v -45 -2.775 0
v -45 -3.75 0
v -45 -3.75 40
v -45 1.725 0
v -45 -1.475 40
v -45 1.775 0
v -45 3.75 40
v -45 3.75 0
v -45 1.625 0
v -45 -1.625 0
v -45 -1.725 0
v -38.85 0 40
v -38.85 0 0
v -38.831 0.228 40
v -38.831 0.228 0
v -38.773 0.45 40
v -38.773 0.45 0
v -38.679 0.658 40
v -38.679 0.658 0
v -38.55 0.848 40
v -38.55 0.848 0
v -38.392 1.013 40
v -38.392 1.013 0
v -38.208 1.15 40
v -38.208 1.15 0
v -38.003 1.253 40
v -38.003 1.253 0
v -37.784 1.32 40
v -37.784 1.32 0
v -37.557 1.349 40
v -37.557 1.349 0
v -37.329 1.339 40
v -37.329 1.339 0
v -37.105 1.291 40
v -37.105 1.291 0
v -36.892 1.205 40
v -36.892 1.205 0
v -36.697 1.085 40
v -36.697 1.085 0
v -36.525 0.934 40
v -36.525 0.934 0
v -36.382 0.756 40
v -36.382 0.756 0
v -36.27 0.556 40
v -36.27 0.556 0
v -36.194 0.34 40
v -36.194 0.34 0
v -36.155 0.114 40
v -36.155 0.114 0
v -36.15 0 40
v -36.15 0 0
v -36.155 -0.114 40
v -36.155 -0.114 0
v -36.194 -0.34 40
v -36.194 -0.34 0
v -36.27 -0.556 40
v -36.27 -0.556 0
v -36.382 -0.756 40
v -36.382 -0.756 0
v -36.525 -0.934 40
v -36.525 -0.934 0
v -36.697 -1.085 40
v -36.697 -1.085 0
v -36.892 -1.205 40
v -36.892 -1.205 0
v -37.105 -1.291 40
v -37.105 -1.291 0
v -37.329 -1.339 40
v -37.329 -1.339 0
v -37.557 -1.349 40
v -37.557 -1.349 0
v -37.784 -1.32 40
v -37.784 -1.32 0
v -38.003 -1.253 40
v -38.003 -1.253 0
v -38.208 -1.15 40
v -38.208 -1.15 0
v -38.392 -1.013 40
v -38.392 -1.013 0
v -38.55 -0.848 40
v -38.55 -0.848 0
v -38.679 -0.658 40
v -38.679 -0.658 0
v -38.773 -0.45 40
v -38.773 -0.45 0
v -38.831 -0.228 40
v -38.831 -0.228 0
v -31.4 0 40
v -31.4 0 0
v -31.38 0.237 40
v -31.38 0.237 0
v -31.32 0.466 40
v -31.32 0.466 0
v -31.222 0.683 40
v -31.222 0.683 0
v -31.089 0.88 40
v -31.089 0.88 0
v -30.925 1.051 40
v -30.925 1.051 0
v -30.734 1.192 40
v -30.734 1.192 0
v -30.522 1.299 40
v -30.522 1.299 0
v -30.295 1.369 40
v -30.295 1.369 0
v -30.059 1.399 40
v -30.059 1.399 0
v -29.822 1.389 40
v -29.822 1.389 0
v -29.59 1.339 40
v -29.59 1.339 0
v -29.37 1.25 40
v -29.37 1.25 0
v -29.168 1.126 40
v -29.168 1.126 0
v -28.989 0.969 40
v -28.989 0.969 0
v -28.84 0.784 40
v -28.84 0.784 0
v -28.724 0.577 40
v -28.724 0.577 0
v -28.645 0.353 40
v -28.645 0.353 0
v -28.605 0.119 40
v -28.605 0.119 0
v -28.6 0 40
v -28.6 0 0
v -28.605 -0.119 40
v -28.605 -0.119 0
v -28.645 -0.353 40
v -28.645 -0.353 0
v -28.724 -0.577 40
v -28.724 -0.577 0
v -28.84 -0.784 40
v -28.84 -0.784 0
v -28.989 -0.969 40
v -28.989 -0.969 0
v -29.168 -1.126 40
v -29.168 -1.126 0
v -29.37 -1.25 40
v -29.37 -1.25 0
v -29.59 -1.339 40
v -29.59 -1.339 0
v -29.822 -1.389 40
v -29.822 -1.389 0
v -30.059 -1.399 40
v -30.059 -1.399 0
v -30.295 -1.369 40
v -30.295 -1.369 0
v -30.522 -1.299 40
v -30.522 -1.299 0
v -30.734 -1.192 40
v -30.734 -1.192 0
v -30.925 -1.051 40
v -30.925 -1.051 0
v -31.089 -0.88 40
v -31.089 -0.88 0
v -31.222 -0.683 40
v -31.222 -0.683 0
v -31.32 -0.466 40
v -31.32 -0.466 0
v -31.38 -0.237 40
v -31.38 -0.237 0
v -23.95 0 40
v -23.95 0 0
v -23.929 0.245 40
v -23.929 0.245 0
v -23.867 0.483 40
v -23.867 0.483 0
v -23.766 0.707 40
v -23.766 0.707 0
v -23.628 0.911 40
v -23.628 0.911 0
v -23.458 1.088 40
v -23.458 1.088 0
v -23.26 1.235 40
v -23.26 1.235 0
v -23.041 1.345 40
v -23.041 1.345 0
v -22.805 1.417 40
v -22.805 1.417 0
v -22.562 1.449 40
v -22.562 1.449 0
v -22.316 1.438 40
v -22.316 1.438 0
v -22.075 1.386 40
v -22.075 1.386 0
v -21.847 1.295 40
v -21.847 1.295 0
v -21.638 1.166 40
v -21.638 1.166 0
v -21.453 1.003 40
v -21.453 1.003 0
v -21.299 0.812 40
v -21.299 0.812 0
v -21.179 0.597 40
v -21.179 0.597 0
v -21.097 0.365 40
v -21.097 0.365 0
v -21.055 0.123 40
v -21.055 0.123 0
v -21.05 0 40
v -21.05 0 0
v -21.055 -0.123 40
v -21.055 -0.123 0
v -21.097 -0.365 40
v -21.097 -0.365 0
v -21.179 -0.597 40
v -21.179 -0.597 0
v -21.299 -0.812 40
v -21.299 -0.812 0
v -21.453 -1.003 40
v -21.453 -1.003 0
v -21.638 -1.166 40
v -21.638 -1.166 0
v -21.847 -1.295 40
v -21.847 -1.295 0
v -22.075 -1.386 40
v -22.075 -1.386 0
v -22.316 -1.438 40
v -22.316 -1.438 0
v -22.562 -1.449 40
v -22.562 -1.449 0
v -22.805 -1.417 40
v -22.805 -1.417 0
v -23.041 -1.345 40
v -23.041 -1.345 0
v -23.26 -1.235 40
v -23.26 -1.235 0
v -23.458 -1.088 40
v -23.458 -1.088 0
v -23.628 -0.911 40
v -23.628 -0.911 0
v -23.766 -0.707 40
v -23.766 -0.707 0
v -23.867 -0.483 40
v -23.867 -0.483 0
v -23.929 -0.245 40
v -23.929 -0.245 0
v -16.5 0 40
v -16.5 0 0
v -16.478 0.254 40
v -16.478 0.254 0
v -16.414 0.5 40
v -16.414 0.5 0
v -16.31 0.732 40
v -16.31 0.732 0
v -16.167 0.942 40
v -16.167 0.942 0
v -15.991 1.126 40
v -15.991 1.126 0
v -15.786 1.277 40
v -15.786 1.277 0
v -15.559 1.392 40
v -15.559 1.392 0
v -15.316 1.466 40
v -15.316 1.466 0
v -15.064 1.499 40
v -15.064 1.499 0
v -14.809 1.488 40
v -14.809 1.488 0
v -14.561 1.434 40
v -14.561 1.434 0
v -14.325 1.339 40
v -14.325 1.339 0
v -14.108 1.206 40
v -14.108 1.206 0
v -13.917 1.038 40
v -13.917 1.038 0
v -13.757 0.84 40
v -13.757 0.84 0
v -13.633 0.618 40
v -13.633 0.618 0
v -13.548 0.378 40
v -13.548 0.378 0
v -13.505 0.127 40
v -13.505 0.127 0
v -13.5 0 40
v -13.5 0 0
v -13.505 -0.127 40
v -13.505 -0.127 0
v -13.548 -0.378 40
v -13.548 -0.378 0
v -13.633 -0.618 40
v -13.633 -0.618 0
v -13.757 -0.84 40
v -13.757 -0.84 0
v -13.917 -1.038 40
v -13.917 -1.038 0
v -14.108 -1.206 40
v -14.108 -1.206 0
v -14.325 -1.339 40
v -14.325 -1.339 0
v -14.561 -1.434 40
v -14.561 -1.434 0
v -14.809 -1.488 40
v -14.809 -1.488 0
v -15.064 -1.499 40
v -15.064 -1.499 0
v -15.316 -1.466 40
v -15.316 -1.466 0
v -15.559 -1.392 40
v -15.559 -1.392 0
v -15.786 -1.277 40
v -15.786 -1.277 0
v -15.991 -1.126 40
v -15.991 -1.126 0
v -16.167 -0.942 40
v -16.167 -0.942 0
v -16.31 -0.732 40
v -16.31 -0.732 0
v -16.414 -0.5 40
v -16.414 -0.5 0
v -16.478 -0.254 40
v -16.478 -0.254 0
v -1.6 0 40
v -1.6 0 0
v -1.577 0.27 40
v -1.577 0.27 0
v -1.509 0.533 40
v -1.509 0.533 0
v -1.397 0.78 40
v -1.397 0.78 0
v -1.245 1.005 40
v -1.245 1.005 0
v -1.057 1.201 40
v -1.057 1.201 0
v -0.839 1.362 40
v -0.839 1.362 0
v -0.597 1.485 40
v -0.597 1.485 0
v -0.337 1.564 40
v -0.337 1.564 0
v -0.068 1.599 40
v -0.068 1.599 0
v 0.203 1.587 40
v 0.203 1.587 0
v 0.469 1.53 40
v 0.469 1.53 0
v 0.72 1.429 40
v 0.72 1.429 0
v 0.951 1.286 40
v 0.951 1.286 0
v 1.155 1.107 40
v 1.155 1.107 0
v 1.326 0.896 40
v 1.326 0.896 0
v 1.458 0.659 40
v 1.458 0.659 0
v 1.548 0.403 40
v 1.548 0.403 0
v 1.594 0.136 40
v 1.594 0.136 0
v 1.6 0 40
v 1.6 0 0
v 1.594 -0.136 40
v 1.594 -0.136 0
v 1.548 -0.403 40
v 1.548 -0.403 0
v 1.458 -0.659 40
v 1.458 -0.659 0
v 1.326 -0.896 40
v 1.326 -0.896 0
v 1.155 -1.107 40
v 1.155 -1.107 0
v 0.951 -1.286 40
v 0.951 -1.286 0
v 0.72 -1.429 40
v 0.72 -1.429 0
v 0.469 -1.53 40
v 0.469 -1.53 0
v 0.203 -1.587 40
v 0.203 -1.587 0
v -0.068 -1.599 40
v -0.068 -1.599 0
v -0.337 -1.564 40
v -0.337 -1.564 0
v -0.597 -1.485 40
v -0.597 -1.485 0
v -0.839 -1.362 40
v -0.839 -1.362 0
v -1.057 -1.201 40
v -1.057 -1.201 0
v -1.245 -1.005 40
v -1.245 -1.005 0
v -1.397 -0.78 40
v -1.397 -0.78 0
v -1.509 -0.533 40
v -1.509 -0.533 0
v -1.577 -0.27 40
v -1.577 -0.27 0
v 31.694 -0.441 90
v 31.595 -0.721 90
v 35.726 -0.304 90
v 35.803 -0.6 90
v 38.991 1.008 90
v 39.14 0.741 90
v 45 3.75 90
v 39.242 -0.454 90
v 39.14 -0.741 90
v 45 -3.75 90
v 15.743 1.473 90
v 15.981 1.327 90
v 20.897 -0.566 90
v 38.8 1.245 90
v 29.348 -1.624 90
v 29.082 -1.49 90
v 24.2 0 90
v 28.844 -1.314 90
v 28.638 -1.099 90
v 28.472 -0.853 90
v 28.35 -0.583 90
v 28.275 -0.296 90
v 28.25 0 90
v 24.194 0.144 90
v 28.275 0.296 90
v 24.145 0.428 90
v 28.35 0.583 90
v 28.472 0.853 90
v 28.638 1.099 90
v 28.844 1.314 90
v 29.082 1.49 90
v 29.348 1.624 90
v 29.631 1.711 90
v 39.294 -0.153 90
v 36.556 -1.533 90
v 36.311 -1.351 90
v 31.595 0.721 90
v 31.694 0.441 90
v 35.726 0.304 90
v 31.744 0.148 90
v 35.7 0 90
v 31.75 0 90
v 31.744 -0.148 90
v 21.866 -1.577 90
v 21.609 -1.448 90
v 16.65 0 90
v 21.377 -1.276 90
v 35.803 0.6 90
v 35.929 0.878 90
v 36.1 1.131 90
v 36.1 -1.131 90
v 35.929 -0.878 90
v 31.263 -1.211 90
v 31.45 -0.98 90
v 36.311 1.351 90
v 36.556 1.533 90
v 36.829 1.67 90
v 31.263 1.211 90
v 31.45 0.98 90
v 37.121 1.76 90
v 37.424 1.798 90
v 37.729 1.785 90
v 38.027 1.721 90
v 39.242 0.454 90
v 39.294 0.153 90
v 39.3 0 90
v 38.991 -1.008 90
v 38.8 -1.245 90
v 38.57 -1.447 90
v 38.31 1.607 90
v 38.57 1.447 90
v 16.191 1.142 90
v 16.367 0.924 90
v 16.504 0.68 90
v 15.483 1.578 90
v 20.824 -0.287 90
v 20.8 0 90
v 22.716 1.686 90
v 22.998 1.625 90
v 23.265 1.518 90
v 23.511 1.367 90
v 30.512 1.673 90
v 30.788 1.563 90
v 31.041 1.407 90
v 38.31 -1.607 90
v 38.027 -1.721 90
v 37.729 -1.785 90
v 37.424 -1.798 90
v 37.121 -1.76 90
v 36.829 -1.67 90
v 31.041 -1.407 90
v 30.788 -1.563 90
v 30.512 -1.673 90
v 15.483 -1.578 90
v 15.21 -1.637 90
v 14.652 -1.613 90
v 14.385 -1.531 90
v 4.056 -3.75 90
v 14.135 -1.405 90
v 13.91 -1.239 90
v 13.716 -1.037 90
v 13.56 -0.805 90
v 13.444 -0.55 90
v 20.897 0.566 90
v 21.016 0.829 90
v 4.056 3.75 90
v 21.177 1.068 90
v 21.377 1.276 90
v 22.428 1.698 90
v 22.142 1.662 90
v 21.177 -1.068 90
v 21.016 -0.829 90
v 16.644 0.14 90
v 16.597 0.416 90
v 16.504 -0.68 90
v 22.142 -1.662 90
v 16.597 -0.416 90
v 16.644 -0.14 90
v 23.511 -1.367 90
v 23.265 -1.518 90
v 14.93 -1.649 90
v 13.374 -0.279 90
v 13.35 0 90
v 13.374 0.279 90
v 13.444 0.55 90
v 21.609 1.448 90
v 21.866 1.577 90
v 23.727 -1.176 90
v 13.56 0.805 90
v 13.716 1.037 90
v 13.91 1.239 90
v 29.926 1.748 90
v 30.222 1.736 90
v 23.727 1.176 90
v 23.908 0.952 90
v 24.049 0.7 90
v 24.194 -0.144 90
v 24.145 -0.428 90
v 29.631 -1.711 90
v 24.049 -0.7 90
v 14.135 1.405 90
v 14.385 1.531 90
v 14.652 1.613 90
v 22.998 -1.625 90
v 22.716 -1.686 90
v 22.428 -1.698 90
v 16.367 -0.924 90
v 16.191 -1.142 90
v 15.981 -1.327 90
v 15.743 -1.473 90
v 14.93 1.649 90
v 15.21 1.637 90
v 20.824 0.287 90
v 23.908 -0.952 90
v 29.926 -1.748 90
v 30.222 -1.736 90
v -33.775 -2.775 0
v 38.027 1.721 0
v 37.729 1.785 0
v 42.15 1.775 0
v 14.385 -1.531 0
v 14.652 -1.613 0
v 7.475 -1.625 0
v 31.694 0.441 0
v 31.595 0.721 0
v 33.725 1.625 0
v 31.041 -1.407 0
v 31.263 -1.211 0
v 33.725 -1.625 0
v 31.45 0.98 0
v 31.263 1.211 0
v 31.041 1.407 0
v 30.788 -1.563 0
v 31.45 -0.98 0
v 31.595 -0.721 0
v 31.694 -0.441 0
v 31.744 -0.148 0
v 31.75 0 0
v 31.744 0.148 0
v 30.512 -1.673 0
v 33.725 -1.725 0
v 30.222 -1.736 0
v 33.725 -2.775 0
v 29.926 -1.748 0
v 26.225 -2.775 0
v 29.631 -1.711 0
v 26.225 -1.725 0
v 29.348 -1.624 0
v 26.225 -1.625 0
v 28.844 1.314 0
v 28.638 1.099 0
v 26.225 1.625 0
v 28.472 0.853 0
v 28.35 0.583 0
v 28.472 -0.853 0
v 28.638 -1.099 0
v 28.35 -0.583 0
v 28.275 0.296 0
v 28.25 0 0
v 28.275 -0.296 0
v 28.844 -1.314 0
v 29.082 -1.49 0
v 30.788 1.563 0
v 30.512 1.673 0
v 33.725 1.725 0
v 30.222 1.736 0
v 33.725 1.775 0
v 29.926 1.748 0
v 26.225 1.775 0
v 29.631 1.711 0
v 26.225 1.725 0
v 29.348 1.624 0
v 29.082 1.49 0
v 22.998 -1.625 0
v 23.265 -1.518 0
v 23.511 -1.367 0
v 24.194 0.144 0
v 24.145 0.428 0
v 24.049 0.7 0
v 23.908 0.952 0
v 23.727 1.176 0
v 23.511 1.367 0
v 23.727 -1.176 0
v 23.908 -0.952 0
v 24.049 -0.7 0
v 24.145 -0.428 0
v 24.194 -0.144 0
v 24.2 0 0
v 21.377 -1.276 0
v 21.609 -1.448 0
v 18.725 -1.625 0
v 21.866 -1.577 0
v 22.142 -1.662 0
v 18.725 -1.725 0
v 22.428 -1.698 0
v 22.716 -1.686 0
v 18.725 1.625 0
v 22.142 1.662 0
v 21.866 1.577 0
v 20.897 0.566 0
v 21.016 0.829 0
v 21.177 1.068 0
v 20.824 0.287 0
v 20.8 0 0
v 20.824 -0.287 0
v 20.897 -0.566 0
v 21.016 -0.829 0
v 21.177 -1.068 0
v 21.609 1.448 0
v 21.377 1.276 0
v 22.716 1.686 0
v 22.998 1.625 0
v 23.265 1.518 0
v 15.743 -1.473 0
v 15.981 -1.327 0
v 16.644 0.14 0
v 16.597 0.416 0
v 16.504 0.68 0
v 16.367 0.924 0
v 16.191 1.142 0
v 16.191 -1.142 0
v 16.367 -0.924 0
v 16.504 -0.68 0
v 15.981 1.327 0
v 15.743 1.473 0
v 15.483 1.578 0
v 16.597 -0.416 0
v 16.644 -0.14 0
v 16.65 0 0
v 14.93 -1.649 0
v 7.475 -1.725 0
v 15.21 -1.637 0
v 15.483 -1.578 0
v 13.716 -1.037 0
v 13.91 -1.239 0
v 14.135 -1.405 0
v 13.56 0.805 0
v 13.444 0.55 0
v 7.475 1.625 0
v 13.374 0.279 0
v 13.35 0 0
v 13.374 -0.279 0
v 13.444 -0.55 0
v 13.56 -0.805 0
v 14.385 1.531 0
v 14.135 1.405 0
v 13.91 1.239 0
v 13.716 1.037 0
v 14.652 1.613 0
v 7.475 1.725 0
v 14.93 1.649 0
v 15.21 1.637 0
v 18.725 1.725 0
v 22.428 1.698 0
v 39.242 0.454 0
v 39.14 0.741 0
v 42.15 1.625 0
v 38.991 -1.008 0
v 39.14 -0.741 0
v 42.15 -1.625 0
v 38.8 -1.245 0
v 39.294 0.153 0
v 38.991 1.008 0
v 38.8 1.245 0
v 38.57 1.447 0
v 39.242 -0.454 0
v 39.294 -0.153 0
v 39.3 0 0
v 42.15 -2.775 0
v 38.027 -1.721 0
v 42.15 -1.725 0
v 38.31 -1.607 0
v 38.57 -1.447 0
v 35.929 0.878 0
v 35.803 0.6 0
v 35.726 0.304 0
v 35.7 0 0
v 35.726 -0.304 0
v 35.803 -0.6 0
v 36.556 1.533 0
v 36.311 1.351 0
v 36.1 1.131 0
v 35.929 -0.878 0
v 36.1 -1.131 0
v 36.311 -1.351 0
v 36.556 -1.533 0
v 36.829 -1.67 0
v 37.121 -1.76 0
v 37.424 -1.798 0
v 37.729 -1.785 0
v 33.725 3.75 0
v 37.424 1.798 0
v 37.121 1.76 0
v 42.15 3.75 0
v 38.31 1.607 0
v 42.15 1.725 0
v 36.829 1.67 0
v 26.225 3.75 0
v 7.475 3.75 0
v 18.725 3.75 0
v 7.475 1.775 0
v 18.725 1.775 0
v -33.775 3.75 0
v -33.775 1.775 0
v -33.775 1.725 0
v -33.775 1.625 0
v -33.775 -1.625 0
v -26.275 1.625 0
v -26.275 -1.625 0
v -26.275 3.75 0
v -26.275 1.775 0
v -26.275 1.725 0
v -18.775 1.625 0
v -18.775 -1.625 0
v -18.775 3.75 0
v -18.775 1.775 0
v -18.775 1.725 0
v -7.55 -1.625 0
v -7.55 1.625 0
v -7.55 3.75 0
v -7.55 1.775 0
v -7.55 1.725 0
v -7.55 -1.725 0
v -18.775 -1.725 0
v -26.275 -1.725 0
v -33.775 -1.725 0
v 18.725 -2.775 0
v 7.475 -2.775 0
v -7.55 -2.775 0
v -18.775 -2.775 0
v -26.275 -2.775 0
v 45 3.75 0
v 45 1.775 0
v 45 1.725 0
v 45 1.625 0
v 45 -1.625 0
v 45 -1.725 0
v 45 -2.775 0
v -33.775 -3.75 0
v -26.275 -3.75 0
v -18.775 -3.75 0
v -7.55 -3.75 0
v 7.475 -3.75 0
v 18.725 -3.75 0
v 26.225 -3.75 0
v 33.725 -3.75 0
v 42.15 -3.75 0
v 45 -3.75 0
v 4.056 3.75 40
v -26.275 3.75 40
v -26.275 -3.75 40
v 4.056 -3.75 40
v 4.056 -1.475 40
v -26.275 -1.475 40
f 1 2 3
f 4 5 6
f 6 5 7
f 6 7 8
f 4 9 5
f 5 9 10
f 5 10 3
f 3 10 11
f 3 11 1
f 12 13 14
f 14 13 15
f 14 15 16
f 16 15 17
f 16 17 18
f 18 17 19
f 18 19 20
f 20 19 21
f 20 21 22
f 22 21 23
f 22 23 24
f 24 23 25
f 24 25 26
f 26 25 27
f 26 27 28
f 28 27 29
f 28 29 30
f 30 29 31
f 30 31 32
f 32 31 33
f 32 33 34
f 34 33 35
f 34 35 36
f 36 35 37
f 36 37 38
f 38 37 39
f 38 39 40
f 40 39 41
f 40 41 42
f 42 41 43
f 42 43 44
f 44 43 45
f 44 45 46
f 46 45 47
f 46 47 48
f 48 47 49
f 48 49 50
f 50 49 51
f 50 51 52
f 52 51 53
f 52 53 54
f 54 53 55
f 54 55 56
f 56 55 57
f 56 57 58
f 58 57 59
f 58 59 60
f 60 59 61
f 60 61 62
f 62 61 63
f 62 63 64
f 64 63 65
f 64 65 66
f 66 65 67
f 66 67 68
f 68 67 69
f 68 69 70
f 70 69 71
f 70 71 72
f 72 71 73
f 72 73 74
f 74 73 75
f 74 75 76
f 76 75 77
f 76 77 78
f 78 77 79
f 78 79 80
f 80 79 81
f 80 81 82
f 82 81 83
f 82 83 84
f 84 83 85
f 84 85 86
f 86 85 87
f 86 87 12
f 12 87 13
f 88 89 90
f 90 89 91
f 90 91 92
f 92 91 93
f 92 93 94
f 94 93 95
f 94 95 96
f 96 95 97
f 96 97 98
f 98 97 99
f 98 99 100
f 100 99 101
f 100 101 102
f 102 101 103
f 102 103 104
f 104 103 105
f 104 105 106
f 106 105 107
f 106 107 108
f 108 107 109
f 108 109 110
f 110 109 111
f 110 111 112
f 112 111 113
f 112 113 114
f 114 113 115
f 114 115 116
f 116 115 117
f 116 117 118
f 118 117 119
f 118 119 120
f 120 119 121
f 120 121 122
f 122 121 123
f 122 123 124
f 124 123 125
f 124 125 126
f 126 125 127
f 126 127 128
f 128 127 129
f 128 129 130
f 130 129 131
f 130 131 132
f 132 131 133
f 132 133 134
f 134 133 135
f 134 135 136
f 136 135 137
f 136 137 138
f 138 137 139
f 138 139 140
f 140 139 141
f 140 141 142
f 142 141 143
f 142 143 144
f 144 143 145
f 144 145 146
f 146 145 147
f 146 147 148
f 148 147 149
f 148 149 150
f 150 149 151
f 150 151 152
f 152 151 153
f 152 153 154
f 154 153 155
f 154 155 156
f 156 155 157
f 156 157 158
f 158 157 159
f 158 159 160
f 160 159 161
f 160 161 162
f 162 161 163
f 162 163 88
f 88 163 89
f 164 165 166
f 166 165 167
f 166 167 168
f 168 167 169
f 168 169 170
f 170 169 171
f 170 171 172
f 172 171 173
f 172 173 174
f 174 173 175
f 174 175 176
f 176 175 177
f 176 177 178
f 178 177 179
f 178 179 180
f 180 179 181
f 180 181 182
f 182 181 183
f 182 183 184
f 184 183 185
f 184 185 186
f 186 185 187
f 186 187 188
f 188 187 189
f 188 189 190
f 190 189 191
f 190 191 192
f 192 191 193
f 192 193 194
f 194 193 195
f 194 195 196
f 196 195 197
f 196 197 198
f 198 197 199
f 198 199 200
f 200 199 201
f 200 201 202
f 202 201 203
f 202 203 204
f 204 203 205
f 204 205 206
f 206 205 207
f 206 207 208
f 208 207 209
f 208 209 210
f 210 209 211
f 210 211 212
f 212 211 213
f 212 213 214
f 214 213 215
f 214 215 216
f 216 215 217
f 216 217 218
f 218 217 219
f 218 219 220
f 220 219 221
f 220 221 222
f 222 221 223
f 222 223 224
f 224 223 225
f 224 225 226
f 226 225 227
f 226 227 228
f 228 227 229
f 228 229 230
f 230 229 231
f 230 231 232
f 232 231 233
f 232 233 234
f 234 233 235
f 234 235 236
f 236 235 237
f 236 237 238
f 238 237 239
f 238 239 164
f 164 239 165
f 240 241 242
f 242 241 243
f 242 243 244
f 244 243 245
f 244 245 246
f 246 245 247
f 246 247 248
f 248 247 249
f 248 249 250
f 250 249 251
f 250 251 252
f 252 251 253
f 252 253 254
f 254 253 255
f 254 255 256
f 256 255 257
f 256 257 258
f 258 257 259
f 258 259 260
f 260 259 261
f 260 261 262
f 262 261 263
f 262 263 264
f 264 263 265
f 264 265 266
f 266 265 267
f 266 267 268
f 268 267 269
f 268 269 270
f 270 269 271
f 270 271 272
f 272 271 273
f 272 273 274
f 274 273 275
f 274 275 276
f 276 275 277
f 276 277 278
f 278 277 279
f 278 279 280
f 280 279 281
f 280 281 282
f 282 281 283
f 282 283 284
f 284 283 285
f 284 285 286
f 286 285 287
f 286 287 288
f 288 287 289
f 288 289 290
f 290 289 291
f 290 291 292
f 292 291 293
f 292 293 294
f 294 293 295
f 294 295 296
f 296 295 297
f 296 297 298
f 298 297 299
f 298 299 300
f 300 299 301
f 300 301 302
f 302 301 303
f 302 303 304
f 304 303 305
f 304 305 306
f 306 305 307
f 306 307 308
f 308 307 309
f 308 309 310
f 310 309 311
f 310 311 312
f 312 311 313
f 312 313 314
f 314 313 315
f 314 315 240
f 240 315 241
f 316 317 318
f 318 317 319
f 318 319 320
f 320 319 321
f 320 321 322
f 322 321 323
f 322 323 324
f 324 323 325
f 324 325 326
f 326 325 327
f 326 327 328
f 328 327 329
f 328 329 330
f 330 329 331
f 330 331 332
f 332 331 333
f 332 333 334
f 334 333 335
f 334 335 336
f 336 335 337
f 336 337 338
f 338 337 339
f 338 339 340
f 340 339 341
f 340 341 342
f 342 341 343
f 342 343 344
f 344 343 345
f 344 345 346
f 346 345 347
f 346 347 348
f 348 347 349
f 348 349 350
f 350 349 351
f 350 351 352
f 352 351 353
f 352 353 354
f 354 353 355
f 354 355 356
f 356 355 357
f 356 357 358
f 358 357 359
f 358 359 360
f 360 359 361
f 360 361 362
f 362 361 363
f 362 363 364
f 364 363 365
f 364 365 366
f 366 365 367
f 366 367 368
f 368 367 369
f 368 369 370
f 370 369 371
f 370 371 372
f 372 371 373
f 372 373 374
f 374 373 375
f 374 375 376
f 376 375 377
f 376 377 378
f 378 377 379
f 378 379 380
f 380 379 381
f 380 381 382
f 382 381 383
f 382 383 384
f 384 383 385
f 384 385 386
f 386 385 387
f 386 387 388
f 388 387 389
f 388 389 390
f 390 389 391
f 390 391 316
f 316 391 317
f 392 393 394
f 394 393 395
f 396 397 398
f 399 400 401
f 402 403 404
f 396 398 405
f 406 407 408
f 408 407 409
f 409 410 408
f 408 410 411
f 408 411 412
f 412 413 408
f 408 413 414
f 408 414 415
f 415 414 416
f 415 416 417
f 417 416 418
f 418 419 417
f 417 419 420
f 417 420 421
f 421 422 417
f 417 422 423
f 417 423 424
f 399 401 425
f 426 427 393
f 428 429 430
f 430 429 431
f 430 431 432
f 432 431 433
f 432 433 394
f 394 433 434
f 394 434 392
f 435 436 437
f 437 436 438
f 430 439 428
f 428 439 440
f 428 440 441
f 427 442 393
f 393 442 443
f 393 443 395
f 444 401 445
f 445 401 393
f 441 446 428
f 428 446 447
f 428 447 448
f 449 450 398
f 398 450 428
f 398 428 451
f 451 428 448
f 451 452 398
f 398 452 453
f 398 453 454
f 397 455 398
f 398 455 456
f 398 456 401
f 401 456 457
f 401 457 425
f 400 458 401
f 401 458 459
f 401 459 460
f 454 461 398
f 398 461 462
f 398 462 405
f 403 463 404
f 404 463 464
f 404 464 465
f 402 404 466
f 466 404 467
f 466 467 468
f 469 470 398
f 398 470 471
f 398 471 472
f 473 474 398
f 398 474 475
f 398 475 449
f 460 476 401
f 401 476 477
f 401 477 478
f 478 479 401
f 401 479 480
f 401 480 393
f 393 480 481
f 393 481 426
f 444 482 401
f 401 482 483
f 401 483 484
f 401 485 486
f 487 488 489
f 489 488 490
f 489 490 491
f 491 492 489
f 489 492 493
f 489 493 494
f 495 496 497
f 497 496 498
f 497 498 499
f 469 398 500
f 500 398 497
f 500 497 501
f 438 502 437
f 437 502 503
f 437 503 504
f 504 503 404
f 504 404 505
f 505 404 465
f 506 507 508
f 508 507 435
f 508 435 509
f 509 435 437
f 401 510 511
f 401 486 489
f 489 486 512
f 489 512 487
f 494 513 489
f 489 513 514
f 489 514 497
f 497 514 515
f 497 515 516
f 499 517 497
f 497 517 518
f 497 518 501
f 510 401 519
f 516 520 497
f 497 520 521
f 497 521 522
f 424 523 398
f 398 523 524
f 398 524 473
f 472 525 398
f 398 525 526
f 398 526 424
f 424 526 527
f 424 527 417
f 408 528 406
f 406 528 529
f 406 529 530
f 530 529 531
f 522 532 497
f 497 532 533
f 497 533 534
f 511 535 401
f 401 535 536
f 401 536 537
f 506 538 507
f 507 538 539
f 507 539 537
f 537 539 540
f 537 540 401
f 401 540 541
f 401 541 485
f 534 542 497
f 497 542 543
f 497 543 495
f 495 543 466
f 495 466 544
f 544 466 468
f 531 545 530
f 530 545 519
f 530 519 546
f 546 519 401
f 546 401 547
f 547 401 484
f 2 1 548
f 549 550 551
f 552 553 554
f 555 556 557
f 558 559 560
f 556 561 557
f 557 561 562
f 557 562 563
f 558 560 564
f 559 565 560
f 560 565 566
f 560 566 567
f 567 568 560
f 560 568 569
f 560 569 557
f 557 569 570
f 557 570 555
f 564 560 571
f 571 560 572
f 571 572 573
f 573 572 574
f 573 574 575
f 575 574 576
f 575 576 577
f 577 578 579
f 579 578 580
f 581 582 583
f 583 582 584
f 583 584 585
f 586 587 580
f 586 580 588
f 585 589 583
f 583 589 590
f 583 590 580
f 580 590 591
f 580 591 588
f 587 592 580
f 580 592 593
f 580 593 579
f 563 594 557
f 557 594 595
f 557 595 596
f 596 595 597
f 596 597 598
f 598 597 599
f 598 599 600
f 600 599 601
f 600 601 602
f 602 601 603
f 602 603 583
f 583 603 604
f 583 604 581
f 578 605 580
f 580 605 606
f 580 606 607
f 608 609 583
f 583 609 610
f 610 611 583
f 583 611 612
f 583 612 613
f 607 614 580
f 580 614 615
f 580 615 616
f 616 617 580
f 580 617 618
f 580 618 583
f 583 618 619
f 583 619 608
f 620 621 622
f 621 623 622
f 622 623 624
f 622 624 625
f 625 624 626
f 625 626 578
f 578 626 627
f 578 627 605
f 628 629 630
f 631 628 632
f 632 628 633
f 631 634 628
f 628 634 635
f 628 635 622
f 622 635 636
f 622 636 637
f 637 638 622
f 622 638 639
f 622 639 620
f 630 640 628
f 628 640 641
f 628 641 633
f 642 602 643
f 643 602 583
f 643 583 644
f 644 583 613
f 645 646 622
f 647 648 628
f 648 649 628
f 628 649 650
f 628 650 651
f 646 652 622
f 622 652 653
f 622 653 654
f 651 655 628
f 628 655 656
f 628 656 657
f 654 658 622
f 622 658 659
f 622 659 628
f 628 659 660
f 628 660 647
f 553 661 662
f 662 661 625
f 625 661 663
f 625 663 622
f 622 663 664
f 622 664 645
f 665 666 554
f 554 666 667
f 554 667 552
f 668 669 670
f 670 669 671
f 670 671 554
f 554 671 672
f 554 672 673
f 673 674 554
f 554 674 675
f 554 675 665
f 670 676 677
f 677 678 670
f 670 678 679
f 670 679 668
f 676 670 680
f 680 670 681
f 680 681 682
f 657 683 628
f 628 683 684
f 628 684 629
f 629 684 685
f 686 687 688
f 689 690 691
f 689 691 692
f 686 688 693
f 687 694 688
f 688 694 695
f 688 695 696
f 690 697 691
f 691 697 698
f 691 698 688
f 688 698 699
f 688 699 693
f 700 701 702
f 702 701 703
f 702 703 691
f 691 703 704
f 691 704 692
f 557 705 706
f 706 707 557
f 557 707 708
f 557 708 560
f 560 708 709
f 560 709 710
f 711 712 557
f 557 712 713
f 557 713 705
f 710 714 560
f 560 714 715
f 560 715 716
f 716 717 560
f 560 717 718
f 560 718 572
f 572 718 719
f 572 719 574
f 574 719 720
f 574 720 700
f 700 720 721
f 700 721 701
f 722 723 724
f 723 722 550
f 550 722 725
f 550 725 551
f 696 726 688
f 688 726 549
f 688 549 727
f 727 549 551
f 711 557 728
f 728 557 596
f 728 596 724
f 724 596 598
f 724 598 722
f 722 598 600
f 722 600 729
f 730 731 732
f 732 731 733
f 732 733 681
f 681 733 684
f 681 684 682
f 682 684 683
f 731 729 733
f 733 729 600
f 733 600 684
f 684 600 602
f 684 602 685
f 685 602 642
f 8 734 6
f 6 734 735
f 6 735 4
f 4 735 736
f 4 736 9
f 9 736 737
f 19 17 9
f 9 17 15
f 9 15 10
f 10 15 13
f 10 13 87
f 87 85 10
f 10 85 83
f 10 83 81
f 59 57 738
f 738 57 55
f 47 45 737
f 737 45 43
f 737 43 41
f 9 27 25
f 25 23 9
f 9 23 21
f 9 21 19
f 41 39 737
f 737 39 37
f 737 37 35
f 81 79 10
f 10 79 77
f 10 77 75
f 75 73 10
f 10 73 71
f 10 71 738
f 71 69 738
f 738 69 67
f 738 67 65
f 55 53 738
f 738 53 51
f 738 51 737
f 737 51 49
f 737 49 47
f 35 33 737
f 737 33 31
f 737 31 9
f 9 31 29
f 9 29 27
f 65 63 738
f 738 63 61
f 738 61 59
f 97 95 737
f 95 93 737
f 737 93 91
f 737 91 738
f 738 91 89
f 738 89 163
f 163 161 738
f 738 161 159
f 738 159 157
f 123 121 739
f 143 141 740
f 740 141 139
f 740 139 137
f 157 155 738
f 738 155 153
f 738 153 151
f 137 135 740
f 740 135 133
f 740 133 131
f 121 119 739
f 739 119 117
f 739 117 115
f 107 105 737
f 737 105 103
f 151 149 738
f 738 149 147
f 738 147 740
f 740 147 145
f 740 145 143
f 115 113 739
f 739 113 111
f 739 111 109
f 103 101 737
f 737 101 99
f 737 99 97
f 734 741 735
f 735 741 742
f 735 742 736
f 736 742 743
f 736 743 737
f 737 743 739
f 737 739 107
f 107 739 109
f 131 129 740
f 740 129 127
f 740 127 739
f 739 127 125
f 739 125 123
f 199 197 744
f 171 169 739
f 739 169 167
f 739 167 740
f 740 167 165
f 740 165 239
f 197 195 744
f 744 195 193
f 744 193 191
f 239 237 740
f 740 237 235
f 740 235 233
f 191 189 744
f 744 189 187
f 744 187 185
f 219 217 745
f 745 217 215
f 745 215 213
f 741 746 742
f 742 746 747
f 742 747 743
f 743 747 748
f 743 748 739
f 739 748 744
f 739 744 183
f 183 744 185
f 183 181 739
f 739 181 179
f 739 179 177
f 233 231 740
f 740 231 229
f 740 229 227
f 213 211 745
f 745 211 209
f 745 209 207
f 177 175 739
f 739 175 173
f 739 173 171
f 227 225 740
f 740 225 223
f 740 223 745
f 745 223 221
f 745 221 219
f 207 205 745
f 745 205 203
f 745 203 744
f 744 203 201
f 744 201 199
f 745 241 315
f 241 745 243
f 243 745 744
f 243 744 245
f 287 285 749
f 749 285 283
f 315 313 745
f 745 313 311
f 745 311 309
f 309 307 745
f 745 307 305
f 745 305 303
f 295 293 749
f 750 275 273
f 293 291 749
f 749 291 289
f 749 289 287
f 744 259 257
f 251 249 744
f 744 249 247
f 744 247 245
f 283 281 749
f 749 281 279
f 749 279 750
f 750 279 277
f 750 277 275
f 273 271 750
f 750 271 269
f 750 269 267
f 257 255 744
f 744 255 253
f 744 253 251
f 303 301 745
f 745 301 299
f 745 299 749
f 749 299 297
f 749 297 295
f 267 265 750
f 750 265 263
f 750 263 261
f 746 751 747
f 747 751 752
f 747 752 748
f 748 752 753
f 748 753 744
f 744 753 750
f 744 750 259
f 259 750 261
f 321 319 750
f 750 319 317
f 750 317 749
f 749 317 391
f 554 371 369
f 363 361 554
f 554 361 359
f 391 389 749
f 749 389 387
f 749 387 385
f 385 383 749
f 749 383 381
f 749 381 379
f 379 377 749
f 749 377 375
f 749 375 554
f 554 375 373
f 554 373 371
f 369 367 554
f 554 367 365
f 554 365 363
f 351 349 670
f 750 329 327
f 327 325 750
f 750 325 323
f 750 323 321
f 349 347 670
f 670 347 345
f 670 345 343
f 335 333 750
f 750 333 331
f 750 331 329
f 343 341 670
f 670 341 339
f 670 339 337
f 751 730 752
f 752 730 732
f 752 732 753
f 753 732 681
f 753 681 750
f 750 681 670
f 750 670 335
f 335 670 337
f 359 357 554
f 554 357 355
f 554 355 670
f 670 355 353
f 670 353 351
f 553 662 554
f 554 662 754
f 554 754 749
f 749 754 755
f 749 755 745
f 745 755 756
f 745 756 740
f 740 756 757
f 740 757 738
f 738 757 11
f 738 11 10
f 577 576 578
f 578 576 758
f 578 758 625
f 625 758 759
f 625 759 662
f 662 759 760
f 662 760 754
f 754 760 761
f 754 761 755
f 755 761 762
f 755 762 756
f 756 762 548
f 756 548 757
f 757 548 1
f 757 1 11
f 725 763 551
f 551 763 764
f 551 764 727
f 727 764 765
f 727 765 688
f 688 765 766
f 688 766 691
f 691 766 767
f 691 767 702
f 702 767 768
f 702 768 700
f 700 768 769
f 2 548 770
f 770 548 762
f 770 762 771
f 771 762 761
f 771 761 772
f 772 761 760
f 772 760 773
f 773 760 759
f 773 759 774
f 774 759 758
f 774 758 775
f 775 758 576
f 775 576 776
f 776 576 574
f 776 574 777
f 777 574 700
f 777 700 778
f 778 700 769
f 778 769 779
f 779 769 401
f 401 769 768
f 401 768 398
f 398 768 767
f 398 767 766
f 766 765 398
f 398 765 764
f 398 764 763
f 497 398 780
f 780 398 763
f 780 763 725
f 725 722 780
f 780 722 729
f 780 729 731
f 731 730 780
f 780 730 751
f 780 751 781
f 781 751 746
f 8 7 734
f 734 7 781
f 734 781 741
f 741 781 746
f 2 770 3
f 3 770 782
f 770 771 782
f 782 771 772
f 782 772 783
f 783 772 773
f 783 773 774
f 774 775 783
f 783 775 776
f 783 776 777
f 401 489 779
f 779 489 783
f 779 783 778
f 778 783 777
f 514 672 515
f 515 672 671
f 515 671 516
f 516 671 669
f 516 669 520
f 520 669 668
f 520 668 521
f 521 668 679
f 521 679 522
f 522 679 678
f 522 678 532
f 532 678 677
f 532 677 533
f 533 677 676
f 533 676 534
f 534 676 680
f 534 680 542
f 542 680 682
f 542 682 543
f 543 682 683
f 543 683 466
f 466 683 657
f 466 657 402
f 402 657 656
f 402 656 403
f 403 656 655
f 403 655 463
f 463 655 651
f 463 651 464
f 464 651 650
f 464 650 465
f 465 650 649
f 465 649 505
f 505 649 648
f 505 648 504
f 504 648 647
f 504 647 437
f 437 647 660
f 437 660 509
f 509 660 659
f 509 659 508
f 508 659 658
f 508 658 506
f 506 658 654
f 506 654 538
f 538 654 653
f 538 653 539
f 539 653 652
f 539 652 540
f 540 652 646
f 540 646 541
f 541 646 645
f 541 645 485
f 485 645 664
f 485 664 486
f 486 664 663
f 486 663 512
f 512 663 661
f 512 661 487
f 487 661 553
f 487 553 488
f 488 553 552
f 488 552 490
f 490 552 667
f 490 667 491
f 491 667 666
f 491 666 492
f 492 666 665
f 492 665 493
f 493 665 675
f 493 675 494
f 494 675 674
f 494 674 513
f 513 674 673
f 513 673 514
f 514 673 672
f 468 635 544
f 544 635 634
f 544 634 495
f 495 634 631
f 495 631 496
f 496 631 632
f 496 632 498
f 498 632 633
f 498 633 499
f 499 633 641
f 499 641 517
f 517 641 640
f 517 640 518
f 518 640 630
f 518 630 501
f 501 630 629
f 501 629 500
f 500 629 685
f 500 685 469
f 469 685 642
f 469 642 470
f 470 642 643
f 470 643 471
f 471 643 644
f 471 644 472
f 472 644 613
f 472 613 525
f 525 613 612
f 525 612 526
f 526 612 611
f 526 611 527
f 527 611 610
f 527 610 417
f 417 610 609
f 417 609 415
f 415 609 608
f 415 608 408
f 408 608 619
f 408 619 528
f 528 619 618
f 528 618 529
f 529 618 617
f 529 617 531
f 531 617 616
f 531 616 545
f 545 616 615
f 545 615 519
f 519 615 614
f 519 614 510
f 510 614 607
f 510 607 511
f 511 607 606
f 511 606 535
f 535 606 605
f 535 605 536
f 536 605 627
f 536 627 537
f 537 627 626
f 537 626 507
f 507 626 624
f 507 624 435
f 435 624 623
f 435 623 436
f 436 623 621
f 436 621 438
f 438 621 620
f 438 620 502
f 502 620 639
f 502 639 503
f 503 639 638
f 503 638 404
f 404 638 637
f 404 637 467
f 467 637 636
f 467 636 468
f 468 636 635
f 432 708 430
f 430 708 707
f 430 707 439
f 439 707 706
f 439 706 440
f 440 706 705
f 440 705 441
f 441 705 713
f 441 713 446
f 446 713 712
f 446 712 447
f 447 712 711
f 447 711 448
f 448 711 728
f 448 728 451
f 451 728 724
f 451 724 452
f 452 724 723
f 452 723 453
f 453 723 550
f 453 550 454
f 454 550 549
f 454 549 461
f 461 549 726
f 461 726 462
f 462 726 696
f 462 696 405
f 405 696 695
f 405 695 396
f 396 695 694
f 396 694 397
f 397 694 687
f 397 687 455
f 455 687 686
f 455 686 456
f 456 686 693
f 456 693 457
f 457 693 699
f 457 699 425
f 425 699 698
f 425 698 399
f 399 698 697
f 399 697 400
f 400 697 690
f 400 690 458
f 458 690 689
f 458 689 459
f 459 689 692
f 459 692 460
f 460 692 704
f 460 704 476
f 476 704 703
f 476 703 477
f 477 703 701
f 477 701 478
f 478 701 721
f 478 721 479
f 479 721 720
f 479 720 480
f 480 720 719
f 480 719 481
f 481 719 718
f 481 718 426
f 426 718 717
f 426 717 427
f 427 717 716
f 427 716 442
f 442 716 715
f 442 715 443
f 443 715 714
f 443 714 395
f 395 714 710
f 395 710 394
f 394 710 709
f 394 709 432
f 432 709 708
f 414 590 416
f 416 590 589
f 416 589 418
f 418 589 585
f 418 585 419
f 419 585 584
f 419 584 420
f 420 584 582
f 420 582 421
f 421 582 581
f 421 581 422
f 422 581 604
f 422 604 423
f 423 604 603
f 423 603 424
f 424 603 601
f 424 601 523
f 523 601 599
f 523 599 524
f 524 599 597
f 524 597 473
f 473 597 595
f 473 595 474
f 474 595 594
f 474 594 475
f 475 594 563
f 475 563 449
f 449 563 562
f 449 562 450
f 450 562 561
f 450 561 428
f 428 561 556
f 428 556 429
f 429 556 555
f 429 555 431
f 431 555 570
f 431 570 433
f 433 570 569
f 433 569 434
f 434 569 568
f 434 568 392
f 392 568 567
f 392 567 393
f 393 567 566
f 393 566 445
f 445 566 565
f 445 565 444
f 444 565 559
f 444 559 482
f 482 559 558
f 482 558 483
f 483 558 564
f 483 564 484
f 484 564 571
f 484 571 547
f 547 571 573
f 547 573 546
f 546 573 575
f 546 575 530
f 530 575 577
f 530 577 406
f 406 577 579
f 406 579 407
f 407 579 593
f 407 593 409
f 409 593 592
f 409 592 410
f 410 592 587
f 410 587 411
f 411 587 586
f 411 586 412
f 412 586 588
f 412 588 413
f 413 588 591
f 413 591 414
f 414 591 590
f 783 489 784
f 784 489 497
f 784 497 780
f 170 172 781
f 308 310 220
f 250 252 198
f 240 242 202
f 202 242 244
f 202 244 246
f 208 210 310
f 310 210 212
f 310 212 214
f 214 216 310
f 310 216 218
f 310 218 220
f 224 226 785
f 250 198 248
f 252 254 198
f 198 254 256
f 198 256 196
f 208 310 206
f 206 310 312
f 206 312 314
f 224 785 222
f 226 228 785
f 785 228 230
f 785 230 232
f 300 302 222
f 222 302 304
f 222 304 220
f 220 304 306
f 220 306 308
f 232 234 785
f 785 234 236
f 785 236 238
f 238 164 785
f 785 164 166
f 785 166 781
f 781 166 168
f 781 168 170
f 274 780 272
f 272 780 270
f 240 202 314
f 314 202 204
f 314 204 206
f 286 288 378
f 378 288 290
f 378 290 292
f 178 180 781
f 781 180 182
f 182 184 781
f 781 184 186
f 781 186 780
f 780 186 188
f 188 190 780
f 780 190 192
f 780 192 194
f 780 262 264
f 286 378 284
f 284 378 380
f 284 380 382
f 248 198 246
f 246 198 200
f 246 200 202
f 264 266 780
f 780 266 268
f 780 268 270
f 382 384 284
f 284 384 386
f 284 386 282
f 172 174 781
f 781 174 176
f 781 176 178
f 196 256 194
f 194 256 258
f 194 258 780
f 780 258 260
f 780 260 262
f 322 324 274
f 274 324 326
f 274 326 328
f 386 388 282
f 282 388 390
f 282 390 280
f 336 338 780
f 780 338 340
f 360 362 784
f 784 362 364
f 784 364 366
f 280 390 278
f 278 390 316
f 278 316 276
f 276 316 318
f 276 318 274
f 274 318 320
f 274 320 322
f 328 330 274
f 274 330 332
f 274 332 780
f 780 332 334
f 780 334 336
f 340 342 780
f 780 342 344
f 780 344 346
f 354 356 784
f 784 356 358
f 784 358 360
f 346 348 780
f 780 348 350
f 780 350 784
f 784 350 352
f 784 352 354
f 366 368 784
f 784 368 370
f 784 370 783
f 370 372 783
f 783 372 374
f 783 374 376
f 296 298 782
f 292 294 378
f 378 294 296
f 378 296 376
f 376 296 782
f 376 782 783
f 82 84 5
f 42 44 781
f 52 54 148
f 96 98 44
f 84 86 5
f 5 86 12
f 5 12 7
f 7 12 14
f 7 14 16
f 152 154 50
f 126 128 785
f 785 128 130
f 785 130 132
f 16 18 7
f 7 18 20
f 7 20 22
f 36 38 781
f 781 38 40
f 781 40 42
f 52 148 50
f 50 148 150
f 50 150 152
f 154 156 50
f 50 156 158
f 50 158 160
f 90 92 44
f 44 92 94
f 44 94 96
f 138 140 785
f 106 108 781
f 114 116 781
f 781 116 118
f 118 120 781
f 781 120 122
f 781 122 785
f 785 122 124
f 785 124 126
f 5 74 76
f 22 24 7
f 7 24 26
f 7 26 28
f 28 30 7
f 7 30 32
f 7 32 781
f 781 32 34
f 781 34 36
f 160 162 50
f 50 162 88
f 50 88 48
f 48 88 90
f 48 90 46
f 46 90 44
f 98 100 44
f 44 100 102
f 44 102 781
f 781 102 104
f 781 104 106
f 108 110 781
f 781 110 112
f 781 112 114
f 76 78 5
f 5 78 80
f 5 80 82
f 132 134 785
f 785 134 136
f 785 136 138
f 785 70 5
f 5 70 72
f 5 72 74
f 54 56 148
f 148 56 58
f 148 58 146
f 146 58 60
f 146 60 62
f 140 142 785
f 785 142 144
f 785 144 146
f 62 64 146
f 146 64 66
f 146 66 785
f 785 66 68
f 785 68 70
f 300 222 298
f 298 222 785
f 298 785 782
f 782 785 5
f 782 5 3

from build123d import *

# Parameters (mm, degrees)
SKETCH1_W           = 90
SKETCH1_H           = 7.5
SKETCH1_R           = 1.35
SKETCH1_R_2         = 1.4
SKETCH1_R_3         = 1.45
SKETCH1_R_4         = 1.5
SKETCH1_R_5         = 1.6
SKETCH1_R_6         = 1.65
SKETCH1_R_7         = 1.7
SKETCH1_R_8         = 1.8
SKETCH1_R_9         = 1.75
BOSS_EXTRUDE1_DEPTH = 90
SKETCH2_W           = 49.055817317
SKETCH2_H           = 7.5
CUT_EXTRUDE1_DEPTH  = 50


with BuildPart() as part:
    # Sketch1 → Boss-Extrude1 (new body)
    with BuildSketch(Plane.XY):
        Rectangle(SKETCH1_W, SKETCH1_H)
        with Locations(Location((-37.5, 0, 0), (0, 0, 180))):
            Circle(SKETCH1_R, mode=Mode.SUBTRACT)
        with Locations(Location((-30, 0, 0), (0, 0, 180))):
            Circle(SKETCH1_R_2, mode=Mode.SUBTRACT)
        with Locations(Location((-22.5, 0, 0), (0, 0, 180))):
            Circle(SKETCH1_R_3, mode=Mode.SUBTRACT)
        with Locations(Location((-15, 0, 0), (0, 0, 180))):
            Circle(SKETCH1_R_4, mode=Mode.SUBTRACT)
        with Locations(Location((0, 0, 0), (0, 0, 180))):
            Circle(SKETCH1_R_5, mode=Mode.SUBTRACT)
        with Locations(Location((15, 0, 0), (0, 0, 180))):
            Circle(SKETCH1_R_6, mode=Mode.SUBTRACT)
        with Locations(Location((22.5, 0, 0), (0, 0, 180))):
            Circle(SKETCH1_R_7, mode=Mode.SUBTRACT)
        with Locations(Location((37.5, 0, 0), (0, 0, 180))):
            Circle(SKETCH1_R_8, mode=Mode.SUBTRACT)
        with Locations(Location((30, 0, 0), (0, 0, 180))):
            Circle(SKETCH1_R_9, mode=Mode.SUBTRACT)
    extrude(amount=BOSS_EXTRUDE1_DEPTH)

    # Sketch2 → Cut-Extrude1 (cut)
    with BuildSketch(Plane.XY.offset(90)):
        with Locations((-20.472091342, 0)):
            Rectangle(SKETCH2_W, SKETCH2_H)
    extrude(amount=-CUT_EXTRUDE1_DEPTH, mode=Mode.SUBTRACT)


solid = part.part
